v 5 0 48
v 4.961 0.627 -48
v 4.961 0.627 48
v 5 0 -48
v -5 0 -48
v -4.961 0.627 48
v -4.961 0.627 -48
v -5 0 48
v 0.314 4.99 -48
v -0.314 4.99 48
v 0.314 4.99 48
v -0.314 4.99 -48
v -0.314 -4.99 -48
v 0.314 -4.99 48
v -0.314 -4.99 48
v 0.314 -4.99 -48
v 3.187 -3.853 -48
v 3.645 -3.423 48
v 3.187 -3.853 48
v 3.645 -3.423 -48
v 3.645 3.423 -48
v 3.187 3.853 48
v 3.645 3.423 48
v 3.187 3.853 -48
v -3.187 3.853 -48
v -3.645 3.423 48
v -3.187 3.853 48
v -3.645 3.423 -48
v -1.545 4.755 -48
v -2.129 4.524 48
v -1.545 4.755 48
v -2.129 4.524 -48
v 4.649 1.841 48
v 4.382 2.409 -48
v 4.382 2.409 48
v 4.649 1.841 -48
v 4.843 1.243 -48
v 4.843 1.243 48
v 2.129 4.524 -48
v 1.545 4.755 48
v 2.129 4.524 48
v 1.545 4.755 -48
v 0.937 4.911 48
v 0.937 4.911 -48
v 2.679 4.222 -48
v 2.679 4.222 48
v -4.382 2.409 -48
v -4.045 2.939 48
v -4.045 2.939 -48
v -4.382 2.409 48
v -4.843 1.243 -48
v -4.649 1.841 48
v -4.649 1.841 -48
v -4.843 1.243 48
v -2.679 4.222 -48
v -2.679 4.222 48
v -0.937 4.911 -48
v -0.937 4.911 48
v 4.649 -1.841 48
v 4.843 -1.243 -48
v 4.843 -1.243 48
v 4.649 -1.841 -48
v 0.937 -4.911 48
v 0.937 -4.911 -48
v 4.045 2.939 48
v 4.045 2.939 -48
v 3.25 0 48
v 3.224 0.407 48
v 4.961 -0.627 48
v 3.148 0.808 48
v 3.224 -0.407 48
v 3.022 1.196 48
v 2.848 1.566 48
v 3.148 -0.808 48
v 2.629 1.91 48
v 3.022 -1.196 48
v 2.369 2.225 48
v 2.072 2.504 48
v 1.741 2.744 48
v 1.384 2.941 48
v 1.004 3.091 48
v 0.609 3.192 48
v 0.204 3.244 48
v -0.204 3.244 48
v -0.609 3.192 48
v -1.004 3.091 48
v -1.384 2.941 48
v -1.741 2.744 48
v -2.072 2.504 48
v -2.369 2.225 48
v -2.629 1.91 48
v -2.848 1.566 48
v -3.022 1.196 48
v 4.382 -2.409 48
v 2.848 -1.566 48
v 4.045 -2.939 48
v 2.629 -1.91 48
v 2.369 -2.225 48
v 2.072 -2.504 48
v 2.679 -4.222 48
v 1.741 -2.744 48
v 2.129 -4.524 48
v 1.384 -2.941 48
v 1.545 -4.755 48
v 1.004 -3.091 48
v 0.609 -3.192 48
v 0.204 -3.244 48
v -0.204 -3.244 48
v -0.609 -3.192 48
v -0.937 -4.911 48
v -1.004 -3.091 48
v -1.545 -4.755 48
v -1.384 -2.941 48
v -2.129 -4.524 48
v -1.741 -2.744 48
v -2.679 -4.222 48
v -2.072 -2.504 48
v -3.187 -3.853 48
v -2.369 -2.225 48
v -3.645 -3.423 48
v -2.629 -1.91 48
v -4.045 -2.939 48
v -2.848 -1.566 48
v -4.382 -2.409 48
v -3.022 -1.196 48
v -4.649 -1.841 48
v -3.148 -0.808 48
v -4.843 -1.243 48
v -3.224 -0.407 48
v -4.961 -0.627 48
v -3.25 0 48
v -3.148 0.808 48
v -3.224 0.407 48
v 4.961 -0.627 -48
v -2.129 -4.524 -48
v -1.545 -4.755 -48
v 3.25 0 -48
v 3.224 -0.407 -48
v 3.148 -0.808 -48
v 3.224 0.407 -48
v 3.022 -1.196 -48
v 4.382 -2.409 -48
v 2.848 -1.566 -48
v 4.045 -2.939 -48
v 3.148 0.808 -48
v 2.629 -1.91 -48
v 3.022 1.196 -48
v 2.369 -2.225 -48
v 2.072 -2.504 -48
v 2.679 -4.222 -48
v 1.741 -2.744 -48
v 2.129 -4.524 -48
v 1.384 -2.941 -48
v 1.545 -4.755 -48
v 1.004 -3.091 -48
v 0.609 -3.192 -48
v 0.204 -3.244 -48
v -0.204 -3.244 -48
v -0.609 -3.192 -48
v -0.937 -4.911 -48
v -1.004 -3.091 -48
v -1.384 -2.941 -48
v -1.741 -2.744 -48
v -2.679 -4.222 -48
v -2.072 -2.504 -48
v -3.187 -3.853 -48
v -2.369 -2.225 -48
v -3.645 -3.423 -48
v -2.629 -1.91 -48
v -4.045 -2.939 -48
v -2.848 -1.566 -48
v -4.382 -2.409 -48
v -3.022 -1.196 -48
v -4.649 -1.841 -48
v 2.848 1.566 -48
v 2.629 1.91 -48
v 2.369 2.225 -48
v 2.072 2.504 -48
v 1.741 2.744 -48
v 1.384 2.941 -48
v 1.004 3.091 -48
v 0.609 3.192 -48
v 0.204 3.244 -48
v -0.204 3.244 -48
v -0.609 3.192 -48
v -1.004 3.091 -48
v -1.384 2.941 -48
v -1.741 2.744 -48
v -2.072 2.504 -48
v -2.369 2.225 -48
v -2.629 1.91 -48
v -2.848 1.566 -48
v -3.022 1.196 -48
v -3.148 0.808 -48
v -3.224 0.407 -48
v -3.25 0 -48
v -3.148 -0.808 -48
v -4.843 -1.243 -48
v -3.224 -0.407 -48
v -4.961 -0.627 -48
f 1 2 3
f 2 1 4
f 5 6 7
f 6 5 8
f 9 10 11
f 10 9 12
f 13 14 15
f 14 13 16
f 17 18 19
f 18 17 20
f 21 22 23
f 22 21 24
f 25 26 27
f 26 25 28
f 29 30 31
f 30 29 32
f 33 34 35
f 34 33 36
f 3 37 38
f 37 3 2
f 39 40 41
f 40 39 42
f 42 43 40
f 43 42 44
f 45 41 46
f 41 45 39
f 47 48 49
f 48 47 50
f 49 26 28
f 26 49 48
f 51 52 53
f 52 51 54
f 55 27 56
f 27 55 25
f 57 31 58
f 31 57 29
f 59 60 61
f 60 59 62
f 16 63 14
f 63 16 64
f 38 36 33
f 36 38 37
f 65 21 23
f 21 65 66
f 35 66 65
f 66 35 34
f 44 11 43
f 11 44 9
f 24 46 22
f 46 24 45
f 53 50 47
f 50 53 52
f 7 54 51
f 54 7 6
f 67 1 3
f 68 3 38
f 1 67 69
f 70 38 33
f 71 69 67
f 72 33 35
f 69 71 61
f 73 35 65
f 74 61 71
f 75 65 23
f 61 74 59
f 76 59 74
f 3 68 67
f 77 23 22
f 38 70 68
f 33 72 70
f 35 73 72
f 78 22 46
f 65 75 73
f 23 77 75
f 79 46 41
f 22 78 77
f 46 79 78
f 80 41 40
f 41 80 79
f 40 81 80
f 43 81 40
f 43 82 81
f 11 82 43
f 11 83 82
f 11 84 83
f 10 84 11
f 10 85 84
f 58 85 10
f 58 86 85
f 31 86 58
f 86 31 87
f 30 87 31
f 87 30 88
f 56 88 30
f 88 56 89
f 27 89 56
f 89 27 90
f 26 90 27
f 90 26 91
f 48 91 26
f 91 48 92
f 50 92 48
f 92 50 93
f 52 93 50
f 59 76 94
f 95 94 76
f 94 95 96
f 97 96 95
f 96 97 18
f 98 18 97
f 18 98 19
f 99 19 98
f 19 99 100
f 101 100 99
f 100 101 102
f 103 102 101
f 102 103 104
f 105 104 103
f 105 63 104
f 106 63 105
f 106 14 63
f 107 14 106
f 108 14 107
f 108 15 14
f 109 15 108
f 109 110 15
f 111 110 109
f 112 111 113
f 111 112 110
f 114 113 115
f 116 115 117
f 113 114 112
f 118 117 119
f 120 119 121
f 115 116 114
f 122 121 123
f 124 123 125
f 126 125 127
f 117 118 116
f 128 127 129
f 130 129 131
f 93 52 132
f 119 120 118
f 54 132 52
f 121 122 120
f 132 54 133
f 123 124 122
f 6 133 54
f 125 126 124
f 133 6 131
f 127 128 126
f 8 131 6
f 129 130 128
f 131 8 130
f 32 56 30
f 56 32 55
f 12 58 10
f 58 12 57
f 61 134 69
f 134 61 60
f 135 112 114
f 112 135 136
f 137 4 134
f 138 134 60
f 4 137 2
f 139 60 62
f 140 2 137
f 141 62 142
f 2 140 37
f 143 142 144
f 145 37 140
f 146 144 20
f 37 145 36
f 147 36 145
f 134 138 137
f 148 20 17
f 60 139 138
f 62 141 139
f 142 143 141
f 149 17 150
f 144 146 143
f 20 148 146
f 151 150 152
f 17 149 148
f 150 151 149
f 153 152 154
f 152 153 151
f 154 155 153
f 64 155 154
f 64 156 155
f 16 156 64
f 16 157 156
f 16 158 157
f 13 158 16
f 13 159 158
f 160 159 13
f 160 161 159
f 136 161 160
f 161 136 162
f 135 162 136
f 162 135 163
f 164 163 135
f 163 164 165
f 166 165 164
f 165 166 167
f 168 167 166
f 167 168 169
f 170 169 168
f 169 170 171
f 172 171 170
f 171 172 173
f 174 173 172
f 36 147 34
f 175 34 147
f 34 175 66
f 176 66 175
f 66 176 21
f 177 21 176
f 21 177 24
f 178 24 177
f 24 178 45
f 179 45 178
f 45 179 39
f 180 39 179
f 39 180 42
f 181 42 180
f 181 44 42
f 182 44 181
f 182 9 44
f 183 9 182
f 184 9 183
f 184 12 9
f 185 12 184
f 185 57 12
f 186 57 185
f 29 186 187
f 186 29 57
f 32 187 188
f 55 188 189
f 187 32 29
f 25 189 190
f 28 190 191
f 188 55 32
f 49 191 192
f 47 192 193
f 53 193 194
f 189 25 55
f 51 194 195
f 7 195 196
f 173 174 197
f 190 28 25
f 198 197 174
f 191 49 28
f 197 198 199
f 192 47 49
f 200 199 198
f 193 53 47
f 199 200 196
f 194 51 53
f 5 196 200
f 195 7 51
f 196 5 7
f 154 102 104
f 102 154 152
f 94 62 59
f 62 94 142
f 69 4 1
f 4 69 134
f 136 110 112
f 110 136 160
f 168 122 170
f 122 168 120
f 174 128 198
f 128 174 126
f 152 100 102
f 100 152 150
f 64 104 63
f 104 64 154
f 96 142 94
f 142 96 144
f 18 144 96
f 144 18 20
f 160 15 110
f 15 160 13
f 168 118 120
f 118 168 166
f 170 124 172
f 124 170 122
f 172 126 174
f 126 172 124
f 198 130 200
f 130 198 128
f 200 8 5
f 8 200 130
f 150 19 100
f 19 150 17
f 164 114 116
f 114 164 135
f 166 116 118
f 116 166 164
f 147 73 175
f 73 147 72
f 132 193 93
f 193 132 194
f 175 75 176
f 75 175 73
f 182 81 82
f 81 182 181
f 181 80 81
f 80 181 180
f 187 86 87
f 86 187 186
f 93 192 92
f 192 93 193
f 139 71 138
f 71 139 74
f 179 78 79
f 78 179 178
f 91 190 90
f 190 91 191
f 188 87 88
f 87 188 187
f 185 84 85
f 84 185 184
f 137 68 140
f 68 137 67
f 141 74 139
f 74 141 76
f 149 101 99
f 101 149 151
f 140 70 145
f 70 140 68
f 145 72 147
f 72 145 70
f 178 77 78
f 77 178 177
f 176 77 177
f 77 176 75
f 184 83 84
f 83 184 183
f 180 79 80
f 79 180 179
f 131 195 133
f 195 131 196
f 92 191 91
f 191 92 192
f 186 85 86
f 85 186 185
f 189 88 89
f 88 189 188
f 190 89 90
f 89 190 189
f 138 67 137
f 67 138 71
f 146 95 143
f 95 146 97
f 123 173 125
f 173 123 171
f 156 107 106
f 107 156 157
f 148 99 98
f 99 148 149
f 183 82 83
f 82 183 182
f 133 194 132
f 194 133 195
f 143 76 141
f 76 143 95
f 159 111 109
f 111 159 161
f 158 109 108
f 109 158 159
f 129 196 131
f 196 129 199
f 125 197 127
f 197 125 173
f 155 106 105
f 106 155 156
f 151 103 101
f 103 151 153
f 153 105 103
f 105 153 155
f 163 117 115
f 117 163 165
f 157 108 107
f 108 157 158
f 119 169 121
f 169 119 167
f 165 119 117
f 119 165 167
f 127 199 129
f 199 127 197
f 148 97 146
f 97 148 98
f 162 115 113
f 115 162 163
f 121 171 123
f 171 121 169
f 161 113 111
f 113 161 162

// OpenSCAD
$fn = 50;


difference() {
	union() {
		translate(v = [0, 0, -48.0000000000]) {
			cylinder(h = 96, r = 5.0000000000);
		}
	}
	union() {
		translate(v = [0, 0, -100.0000000000]) {
			cylinder(h = 200, r = 3.2500000000);
		}
	}
}
